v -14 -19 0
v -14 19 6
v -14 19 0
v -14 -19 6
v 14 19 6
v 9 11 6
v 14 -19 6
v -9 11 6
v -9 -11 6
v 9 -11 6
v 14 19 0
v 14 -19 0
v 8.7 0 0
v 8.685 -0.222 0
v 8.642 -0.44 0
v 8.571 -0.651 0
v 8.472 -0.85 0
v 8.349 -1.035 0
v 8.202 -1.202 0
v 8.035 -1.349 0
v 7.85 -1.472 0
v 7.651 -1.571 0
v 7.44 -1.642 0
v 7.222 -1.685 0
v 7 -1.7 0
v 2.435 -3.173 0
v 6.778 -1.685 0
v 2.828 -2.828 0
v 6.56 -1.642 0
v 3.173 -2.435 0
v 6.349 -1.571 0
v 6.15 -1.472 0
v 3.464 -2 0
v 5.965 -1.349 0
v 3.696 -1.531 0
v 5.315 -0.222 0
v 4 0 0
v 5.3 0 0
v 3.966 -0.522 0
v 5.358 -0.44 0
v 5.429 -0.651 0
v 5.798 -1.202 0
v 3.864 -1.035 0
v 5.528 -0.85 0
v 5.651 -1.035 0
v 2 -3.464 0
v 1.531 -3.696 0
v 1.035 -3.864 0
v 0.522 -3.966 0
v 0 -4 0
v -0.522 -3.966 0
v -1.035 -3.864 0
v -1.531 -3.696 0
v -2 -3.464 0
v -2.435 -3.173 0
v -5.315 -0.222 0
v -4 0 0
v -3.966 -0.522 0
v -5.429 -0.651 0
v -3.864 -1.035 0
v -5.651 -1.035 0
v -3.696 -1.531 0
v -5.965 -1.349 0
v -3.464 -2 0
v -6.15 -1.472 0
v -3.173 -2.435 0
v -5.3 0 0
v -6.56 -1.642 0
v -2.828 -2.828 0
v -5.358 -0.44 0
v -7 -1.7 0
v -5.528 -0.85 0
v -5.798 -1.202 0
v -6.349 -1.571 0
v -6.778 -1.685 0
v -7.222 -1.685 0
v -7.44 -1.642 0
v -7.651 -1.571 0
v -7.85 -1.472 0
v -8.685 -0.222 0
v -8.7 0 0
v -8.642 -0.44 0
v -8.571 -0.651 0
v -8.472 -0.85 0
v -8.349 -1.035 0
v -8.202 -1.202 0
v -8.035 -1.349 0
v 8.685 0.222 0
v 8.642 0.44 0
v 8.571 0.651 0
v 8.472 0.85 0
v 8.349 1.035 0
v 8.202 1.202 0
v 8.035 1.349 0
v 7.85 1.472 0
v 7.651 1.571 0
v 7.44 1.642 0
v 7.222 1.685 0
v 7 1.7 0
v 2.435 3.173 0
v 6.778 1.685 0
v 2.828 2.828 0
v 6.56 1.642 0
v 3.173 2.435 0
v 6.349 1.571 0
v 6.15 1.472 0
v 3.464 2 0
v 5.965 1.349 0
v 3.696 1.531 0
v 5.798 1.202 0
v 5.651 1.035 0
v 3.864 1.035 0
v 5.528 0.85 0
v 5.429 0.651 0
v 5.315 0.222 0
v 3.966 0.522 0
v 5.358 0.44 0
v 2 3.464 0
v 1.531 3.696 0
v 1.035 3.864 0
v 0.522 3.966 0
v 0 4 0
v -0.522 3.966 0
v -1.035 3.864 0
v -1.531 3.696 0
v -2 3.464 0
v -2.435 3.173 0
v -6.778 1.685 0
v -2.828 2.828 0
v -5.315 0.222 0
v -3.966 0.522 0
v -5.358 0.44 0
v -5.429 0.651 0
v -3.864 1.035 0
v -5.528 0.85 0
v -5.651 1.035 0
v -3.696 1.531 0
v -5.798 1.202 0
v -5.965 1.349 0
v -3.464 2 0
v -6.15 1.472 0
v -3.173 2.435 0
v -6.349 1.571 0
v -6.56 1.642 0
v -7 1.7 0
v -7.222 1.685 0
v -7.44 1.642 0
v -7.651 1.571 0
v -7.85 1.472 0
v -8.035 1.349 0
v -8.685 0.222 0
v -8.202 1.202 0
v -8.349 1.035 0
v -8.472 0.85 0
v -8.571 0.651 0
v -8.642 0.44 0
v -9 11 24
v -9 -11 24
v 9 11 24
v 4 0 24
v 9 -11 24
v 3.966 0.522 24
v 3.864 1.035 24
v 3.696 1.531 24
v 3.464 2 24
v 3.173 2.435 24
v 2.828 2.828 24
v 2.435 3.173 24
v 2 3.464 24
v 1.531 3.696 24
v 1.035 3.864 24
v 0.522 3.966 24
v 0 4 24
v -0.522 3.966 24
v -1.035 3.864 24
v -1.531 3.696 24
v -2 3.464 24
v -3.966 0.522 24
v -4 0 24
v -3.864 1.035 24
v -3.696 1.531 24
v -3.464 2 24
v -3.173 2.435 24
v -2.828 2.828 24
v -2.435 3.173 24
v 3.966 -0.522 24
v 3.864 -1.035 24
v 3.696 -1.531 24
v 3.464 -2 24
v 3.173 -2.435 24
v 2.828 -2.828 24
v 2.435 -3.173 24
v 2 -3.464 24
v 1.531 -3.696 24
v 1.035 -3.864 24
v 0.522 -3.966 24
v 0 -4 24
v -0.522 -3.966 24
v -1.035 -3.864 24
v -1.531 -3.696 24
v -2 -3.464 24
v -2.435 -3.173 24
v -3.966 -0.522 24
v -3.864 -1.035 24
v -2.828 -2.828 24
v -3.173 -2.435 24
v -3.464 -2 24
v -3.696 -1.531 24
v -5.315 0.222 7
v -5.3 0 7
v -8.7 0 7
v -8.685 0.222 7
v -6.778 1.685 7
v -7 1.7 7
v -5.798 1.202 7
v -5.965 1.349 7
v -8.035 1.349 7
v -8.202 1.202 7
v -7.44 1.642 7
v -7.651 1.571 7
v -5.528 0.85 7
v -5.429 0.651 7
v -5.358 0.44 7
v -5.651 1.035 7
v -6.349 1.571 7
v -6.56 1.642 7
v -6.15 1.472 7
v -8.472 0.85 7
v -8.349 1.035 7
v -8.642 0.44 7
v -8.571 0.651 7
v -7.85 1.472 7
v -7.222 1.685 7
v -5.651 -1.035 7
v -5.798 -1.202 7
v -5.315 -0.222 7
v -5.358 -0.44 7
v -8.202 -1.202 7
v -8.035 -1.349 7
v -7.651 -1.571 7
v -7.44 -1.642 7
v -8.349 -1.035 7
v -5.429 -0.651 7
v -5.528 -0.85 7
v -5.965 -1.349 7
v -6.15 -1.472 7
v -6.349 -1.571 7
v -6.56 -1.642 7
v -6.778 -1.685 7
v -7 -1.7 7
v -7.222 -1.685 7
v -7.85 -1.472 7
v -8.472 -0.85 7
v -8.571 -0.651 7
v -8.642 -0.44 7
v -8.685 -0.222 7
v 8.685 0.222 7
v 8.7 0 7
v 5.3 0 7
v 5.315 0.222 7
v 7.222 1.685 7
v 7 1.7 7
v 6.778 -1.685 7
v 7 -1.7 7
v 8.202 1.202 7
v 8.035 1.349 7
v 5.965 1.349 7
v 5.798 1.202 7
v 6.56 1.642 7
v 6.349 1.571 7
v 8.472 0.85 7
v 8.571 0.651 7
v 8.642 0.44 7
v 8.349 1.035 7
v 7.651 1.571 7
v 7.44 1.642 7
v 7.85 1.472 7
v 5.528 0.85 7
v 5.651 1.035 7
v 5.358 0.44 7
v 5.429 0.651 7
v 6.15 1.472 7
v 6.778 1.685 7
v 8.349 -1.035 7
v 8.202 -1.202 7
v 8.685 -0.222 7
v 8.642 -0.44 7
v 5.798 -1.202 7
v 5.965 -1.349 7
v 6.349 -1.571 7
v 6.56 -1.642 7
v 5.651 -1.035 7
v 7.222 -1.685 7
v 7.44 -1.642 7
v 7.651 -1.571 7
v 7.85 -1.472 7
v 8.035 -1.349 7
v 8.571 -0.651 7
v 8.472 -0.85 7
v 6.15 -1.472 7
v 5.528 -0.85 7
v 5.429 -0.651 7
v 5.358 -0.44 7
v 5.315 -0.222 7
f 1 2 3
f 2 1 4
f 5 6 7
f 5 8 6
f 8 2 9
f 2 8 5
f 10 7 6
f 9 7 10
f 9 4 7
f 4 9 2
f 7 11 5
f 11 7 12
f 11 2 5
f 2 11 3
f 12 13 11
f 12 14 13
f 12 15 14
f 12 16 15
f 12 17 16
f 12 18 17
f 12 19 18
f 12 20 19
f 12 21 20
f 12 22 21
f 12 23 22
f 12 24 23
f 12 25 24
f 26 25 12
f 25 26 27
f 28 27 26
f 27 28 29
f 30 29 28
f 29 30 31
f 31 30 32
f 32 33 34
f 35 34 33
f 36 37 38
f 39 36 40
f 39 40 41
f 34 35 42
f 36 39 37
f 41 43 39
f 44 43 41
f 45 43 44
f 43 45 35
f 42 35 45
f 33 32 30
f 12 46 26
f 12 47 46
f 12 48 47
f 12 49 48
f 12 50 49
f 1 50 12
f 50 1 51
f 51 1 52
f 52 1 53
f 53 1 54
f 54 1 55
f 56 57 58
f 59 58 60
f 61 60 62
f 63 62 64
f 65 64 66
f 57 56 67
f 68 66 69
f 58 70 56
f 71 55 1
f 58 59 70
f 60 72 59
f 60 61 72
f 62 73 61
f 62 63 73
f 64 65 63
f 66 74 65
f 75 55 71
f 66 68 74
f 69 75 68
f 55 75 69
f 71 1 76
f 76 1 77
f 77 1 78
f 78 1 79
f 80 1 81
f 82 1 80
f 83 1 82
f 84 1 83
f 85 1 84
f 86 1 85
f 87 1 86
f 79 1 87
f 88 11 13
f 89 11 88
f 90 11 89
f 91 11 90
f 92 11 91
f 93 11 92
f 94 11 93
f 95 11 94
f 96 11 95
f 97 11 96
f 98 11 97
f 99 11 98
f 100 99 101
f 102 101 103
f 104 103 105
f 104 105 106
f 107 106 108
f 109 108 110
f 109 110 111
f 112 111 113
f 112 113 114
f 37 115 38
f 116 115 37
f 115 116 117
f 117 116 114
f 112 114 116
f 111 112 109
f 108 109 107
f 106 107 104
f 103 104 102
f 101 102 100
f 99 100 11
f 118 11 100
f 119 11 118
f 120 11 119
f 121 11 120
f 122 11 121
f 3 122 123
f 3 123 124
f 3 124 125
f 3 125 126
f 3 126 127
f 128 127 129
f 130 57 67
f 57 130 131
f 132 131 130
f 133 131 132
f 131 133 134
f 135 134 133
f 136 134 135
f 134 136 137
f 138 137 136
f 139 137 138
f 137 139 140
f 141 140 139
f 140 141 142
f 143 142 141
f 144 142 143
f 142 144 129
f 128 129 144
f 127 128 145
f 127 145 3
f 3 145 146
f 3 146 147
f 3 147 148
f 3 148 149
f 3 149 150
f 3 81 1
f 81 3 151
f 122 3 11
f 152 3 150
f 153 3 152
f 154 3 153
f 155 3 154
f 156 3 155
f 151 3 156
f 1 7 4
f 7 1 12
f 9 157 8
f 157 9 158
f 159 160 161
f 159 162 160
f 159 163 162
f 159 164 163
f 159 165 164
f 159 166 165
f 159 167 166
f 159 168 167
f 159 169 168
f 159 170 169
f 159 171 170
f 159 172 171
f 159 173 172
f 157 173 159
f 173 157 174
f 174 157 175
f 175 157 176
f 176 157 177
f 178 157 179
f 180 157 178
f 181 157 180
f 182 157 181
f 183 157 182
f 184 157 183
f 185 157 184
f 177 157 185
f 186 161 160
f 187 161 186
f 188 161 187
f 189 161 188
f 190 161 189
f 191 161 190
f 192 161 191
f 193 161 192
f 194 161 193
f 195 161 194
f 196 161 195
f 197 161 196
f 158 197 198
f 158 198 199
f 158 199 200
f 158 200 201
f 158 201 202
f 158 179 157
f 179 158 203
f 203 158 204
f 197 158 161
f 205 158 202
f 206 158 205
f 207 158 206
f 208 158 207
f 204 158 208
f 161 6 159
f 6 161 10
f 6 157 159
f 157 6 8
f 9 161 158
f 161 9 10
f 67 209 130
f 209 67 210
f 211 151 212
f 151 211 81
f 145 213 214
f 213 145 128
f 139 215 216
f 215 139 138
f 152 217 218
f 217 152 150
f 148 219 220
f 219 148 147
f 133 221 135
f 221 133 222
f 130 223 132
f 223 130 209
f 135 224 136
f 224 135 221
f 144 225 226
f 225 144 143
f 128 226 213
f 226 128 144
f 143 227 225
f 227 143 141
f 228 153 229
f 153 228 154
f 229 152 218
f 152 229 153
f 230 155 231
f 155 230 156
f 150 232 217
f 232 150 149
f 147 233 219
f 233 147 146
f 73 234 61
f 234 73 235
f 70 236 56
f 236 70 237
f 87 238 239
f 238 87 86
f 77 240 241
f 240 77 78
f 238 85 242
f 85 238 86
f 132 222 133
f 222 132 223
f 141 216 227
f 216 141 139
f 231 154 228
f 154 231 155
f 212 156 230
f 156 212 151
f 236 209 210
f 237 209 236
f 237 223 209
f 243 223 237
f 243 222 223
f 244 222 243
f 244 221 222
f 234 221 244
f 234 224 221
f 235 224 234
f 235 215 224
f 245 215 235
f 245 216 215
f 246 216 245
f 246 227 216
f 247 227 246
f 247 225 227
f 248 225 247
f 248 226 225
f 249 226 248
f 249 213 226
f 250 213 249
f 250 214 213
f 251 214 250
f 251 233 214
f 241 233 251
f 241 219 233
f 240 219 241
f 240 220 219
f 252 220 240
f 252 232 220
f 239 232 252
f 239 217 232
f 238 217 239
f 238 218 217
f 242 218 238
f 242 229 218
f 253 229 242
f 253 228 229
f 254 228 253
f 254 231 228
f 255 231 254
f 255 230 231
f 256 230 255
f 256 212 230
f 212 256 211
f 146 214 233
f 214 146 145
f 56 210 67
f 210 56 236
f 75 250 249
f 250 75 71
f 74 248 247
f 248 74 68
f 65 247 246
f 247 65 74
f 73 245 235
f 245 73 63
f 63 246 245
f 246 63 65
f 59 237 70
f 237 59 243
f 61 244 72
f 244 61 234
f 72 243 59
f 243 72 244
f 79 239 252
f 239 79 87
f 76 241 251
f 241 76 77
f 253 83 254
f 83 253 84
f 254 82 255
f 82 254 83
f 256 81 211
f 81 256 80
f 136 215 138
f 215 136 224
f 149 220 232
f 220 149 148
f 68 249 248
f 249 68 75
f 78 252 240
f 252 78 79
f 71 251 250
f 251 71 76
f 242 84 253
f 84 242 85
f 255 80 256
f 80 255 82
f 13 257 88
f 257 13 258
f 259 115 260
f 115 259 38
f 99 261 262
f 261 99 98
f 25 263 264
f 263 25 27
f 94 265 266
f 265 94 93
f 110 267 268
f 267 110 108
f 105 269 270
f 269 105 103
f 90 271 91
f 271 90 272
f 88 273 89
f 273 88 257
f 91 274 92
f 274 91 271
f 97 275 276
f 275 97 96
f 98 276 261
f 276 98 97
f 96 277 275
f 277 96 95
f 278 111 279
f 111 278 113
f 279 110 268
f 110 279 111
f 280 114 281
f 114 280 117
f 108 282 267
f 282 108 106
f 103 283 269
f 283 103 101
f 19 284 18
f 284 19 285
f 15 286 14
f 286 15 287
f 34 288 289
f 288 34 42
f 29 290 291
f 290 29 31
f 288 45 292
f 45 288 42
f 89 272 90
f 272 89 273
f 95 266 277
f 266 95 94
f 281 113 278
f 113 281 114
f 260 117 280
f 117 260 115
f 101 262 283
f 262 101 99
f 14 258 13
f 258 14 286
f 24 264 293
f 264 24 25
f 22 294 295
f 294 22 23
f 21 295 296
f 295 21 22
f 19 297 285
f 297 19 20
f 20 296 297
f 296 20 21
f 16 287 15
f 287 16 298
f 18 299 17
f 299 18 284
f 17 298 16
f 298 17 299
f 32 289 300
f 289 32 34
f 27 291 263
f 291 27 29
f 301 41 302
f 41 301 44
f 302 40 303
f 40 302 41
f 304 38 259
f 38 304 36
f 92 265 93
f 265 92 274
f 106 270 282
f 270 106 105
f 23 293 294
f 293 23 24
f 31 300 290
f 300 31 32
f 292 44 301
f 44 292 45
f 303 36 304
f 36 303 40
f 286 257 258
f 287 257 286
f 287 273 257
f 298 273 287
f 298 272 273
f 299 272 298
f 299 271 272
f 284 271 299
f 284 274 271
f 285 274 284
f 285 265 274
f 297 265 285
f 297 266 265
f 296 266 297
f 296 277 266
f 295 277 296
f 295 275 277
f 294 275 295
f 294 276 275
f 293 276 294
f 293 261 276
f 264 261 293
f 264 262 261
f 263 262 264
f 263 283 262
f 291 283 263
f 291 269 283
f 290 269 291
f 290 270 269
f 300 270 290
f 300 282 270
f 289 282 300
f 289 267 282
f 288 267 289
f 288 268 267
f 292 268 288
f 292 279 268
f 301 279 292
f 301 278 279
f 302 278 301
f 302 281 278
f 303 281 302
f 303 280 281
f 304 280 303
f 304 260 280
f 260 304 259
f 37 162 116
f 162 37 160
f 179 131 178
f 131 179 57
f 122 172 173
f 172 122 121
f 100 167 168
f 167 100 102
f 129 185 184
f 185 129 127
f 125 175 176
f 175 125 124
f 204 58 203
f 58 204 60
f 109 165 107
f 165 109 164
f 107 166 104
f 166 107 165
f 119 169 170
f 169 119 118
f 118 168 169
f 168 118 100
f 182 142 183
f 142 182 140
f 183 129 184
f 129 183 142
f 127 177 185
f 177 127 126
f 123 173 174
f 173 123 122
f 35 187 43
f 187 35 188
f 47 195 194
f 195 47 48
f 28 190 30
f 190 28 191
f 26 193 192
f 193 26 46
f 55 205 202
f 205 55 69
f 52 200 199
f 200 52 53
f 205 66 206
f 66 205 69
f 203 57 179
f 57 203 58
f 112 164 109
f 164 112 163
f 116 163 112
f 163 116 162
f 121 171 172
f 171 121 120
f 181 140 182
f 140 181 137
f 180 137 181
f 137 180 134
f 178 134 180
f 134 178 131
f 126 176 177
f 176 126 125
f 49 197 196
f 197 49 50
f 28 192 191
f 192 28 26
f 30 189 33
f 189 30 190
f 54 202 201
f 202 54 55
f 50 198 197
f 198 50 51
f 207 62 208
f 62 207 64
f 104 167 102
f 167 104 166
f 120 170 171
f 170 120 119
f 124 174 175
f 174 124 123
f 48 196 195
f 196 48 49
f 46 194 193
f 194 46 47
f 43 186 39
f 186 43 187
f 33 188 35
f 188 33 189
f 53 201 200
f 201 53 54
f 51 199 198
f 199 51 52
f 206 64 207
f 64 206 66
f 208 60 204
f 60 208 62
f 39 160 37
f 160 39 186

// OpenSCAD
// =======================================
// SCOUT Camera Head Mount BLACK V1
// Standalone Version
// =======================================

$fn = 48;


// ===============================
// LOCAL DIMENSIONS
// ===============================


head_mount_neck_width = 22;
head_mount_neck_depth = 18;
head_mount_neck_height = 18;


head_wire_pass_diameter = 8;

head_pivot_screw_diameter = 3.2;

m3_clearance_diameter = 3.4;

screw_edge_margin = 5;



// ===============================
// MODEL
// ===============================


module SCOUT_Camera_Head_Mount_BLACK_V1() {


    base_length = head_mount_neck_depth + 10;
    base_width = head_mount_neck_width + 16;

    base_height = 6;

    total_height =
        base_height
        + head_mount_neck_height;



    difference() {


        union() {


            // Base plate

            translate([
                0,
                0,
                base_height / 2
            ])

            cube([
                base_length,
                base_width,
                base_height
            ], center=true);



            // Neck

            translate([
                0,
                0,
                base_height + (head_mount_neck_height / 2)
            ])

            cube([
                head_mount_neck_depth,
                head_mount_neck_width,
                head_mount_neck_height
            ], center=true);

        }



        // Cable hole

        translate([
            0,
            0,
            total_height / 2
        ])

        cylinder(
            d=head_wire_pass_diameter,
            h=total_height + 2,
            center=true
        );



        // Pivot screw hole

        translate([
            0,
            0,
            total_height - 5
        ])

        cylinder(
            d=head_pivot_screw_diameter,
            h=12,
            center=true
        );



        // Mounting screws

        for(
            xoff=[
                -base_length * 0.25,
                 base_length * 0.25
            ]
        )

        translate([
            xoff,
            0,
            base_height / 2
        ])

        cylinder(
            d=m3_clearance_diameter,
            h=base_height + 2,
            center=true
        );

    }
}



SCOUT_Camera_Head_Mount_BLACK_V1();
